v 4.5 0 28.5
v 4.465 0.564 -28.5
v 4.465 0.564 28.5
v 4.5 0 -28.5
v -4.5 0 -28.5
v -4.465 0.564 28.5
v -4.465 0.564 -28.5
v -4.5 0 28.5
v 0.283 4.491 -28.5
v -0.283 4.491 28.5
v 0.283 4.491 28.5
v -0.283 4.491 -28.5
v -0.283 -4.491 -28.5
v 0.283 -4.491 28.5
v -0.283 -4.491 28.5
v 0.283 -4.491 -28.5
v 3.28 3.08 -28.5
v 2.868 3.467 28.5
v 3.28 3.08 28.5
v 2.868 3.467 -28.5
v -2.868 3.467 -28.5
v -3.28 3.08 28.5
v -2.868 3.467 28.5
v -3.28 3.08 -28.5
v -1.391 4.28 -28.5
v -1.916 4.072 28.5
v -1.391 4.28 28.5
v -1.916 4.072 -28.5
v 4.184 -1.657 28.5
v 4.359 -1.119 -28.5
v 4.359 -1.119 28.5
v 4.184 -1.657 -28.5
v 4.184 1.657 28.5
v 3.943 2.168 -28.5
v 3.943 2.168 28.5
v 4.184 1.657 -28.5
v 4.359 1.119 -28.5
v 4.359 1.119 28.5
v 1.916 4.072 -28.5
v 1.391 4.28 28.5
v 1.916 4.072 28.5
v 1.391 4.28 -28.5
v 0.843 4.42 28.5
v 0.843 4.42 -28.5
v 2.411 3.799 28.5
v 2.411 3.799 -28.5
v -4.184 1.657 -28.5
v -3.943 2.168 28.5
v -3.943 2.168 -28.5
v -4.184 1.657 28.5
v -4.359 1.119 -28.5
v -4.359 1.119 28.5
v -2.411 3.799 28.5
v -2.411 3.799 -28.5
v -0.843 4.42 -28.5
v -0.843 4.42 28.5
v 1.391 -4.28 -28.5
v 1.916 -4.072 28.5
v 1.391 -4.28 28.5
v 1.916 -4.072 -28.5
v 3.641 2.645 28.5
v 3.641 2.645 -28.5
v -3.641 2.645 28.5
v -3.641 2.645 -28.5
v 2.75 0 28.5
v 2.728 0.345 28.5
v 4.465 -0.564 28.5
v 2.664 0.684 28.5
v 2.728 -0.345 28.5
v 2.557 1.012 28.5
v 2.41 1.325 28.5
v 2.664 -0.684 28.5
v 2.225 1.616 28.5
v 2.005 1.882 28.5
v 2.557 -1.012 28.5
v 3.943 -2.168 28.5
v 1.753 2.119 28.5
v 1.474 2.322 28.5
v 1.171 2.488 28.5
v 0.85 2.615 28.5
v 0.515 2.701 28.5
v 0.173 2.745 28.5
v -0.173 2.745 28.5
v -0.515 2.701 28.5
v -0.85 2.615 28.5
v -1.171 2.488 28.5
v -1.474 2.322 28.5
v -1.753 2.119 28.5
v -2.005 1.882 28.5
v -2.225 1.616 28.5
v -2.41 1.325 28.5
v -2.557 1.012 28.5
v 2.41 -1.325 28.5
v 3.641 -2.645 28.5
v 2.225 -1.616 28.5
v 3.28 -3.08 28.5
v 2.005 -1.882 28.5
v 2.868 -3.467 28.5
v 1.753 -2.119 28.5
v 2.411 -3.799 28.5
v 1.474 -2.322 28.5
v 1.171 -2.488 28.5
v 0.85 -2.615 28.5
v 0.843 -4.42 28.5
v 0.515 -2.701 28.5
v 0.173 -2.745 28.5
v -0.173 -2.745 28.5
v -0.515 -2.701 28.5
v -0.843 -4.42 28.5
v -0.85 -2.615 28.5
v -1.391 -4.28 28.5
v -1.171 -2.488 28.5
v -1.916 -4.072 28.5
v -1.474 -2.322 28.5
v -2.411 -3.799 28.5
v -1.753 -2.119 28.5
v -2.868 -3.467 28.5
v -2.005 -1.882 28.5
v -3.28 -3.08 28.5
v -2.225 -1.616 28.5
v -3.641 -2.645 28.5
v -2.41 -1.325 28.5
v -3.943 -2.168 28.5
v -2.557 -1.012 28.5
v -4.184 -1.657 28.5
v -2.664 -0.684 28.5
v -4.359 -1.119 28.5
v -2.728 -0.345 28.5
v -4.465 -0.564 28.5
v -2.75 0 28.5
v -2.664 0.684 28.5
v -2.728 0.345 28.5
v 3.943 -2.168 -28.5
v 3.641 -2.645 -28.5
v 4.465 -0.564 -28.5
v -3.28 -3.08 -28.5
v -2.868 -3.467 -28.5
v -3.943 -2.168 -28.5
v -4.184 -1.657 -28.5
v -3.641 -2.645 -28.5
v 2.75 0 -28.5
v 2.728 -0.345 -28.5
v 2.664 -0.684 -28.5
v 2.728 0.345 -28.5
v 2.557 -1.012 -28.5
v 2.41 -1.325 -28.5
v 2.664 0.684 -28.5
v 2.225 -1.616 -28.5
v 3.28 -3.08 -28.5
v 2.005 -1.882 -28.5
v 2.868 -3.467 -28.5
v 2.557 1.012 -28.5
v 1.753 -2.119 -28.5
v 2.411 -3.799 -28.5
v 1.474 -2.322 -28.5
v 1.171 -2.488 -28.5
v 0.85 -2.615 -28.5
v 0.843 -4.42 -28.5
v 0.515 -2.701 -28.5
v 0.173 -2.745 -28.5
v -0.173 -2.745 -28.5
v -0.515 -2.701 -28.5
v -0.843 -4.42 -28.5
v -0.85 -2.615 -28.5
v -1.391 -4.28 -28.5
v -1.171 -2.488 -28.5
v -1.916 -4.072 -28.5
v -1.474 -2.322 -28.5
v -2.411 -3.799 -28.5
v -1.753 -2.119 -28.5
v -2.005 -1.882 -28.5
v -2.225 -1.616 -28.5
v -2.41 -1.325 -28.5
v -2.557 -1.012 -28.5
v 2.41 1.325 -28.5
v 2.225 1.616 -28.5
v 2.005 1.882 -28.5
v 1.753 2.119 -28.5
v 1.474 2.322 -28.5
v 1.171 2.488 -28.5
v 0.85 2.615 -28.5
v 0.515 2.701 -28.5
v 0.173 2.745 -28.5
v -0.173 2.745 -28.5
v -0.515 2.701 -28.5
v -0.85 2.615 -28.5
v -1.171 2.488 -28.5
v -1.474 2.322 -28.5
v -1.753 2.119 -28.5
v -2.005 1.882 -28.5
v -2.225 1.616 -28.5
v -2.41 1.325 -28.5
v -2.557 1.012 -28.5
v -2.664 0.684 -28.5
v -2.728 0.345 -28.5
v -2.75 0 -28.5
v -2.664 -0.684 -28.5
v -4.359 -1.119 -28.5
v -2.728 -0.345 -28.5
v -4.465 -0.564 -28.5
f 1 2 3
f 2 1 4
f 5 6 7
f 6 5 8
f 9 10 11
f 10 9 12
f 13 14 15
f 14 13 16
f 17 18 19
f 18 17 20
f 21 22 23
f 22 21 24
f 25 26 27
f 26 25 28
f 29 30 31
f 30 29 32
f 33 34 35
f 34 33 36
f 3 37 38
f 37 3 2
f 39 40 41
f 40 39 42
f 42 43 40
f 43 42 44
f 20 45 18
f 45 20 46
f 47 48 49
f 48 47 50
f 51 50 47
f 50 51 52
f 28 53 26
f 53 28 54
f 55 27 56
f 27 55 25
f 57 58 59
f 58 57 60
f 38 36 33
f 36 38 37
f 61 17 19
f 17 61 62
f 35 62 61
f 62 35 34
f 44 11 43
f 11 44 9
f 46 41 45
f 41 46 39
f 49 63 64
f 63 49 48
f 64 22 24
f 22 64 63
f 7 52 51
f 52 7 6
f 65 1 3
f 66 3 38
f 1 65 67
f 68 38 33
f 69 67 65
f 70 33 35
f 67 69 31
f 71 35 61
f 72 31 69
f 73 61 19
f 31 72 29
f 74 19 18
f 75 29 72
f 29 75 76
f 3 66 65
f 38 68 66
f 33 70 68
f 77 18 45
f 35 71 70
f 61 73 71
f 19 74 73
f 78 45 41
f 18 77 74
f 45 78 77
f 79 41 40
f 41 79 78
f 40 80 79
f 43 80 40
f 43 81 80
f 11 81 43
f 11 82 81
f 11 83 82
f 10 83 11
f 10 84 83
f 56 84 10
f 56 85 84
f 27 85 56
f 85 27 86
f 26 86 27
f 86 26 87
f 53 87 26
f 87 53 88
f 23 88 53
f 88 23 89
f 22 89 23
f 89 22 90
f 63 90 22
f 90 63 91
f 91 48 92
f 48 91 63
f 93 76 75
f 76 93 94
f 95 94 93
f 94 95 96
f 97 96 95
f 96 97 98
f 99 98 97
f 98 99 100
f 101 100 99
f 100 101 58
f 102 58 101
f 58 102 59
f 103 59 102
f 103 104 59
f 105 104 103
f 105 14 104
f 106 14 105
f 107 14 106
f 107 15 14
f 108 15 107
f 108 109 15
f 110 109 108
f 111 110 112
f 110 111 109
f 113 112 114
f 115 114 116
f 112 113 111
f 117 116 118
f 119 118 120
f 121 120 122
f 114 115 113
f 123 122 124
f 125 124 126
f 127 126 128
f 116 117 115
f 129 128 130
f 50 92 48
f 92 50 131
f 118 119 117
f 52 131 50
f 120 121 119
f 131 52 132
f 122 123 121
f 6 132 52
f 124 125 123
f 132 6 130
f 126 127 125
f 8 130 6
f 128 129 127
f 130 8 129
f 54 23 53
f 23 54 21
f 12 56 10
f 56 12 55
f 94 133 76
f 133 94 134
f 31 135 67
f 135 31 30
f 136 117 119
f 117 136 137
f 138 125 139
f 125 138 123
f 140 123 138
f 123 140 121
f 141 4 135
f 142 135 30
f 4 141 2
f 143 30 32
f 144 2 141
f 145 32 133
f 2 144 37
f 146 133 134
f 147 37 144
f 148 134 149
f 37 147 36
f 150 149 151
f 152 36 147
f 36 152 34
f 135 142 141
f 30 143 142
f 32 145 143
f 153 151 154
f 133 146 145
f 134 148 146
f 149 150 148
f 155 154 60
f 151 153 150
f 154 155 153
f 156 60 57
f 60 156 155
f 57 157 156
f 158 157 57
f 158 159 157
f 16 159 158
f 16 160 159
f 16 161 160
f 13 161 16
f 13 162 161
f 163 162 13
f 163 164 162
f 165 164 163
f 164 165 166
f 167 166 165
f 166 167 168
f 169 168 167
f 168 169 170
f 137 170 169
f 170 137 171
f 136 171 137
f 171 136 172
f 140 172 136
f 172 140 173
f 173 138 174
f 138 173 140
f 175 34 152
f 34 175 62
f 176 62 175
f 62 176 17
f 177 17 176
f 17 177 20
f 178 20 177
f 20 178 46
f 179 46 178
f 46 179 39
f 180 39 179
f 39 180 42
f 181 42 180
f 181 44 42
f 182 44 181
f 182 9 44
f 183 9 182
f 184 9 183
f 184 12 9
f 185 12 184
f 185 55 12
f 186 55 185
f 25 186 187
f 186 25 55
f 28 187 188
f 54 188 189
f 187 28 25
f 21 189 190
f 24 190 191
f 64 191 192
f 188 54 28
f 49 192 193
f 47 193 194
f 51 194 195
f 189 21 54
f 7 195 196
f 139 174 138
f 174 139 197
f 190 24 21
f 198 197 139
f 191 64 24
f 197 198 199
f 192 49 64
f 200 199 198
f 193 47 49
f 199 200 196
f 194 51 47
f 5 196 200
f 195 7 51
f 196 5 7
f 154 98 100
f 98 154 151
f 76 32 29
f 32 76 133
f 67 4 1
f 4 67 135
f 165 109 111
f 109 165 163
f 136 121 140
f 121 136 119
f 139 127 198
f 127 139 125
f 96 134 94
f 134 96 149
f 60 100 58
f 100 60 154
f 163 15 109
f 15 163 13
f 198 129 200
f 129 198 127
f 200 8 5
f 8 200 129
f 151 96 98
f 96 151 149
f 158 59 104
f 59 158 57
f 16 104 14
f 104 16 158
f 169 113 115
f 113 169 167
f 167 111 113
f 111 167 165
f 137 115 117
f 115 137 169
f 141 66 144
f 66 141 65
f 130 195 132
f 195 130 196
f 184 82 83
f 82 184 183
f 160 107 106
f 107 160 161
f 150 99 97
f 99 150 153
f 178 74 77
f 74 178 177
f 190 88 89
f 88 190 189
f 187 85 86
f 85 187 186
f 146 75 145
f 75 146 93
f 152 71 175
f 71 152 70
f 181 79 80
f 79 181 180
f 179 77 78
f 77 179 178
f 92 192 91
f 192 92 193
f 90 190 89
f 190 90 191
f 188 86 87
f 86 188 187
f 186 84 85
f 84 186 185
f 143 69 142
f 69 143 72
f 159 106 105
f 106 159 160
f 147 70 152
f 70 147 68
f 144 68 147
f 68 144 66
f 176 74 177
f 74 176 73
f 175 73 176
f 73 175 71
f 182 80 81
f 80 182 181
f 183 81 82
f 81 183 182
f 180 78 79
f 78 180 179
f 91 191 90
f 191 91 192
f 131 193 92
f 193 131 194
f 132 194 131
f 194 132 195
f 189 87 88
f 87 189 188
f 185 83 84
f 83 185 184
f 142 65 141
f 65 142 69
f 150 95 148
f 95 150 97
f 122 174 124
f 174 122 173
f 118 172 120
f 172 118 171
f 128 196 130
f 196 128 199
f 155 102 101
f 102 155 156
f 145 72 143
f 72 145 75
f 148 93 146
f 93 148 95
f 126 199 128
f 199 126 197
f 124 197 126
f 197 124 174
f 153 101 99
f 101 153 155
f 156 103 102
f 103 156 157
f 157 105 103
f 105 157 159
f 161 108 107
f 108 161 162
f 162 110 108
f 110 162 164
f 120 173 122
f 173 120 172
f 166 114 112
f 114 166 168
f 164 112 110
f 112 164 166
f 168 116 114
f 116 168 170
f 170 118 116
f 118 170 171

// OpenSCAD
$fn = 50;


difference() {
	union() {
		translate(v = [0, 0, -28.5000000000]) {
			cylinder(h = 57, r = 4.5000000000);
		}
	}
	union() {
		translate(v = [0, 0, -100.0000000000]) {
			cylinder(h = 200, r = 2.7500000000);
		}
	}
}
